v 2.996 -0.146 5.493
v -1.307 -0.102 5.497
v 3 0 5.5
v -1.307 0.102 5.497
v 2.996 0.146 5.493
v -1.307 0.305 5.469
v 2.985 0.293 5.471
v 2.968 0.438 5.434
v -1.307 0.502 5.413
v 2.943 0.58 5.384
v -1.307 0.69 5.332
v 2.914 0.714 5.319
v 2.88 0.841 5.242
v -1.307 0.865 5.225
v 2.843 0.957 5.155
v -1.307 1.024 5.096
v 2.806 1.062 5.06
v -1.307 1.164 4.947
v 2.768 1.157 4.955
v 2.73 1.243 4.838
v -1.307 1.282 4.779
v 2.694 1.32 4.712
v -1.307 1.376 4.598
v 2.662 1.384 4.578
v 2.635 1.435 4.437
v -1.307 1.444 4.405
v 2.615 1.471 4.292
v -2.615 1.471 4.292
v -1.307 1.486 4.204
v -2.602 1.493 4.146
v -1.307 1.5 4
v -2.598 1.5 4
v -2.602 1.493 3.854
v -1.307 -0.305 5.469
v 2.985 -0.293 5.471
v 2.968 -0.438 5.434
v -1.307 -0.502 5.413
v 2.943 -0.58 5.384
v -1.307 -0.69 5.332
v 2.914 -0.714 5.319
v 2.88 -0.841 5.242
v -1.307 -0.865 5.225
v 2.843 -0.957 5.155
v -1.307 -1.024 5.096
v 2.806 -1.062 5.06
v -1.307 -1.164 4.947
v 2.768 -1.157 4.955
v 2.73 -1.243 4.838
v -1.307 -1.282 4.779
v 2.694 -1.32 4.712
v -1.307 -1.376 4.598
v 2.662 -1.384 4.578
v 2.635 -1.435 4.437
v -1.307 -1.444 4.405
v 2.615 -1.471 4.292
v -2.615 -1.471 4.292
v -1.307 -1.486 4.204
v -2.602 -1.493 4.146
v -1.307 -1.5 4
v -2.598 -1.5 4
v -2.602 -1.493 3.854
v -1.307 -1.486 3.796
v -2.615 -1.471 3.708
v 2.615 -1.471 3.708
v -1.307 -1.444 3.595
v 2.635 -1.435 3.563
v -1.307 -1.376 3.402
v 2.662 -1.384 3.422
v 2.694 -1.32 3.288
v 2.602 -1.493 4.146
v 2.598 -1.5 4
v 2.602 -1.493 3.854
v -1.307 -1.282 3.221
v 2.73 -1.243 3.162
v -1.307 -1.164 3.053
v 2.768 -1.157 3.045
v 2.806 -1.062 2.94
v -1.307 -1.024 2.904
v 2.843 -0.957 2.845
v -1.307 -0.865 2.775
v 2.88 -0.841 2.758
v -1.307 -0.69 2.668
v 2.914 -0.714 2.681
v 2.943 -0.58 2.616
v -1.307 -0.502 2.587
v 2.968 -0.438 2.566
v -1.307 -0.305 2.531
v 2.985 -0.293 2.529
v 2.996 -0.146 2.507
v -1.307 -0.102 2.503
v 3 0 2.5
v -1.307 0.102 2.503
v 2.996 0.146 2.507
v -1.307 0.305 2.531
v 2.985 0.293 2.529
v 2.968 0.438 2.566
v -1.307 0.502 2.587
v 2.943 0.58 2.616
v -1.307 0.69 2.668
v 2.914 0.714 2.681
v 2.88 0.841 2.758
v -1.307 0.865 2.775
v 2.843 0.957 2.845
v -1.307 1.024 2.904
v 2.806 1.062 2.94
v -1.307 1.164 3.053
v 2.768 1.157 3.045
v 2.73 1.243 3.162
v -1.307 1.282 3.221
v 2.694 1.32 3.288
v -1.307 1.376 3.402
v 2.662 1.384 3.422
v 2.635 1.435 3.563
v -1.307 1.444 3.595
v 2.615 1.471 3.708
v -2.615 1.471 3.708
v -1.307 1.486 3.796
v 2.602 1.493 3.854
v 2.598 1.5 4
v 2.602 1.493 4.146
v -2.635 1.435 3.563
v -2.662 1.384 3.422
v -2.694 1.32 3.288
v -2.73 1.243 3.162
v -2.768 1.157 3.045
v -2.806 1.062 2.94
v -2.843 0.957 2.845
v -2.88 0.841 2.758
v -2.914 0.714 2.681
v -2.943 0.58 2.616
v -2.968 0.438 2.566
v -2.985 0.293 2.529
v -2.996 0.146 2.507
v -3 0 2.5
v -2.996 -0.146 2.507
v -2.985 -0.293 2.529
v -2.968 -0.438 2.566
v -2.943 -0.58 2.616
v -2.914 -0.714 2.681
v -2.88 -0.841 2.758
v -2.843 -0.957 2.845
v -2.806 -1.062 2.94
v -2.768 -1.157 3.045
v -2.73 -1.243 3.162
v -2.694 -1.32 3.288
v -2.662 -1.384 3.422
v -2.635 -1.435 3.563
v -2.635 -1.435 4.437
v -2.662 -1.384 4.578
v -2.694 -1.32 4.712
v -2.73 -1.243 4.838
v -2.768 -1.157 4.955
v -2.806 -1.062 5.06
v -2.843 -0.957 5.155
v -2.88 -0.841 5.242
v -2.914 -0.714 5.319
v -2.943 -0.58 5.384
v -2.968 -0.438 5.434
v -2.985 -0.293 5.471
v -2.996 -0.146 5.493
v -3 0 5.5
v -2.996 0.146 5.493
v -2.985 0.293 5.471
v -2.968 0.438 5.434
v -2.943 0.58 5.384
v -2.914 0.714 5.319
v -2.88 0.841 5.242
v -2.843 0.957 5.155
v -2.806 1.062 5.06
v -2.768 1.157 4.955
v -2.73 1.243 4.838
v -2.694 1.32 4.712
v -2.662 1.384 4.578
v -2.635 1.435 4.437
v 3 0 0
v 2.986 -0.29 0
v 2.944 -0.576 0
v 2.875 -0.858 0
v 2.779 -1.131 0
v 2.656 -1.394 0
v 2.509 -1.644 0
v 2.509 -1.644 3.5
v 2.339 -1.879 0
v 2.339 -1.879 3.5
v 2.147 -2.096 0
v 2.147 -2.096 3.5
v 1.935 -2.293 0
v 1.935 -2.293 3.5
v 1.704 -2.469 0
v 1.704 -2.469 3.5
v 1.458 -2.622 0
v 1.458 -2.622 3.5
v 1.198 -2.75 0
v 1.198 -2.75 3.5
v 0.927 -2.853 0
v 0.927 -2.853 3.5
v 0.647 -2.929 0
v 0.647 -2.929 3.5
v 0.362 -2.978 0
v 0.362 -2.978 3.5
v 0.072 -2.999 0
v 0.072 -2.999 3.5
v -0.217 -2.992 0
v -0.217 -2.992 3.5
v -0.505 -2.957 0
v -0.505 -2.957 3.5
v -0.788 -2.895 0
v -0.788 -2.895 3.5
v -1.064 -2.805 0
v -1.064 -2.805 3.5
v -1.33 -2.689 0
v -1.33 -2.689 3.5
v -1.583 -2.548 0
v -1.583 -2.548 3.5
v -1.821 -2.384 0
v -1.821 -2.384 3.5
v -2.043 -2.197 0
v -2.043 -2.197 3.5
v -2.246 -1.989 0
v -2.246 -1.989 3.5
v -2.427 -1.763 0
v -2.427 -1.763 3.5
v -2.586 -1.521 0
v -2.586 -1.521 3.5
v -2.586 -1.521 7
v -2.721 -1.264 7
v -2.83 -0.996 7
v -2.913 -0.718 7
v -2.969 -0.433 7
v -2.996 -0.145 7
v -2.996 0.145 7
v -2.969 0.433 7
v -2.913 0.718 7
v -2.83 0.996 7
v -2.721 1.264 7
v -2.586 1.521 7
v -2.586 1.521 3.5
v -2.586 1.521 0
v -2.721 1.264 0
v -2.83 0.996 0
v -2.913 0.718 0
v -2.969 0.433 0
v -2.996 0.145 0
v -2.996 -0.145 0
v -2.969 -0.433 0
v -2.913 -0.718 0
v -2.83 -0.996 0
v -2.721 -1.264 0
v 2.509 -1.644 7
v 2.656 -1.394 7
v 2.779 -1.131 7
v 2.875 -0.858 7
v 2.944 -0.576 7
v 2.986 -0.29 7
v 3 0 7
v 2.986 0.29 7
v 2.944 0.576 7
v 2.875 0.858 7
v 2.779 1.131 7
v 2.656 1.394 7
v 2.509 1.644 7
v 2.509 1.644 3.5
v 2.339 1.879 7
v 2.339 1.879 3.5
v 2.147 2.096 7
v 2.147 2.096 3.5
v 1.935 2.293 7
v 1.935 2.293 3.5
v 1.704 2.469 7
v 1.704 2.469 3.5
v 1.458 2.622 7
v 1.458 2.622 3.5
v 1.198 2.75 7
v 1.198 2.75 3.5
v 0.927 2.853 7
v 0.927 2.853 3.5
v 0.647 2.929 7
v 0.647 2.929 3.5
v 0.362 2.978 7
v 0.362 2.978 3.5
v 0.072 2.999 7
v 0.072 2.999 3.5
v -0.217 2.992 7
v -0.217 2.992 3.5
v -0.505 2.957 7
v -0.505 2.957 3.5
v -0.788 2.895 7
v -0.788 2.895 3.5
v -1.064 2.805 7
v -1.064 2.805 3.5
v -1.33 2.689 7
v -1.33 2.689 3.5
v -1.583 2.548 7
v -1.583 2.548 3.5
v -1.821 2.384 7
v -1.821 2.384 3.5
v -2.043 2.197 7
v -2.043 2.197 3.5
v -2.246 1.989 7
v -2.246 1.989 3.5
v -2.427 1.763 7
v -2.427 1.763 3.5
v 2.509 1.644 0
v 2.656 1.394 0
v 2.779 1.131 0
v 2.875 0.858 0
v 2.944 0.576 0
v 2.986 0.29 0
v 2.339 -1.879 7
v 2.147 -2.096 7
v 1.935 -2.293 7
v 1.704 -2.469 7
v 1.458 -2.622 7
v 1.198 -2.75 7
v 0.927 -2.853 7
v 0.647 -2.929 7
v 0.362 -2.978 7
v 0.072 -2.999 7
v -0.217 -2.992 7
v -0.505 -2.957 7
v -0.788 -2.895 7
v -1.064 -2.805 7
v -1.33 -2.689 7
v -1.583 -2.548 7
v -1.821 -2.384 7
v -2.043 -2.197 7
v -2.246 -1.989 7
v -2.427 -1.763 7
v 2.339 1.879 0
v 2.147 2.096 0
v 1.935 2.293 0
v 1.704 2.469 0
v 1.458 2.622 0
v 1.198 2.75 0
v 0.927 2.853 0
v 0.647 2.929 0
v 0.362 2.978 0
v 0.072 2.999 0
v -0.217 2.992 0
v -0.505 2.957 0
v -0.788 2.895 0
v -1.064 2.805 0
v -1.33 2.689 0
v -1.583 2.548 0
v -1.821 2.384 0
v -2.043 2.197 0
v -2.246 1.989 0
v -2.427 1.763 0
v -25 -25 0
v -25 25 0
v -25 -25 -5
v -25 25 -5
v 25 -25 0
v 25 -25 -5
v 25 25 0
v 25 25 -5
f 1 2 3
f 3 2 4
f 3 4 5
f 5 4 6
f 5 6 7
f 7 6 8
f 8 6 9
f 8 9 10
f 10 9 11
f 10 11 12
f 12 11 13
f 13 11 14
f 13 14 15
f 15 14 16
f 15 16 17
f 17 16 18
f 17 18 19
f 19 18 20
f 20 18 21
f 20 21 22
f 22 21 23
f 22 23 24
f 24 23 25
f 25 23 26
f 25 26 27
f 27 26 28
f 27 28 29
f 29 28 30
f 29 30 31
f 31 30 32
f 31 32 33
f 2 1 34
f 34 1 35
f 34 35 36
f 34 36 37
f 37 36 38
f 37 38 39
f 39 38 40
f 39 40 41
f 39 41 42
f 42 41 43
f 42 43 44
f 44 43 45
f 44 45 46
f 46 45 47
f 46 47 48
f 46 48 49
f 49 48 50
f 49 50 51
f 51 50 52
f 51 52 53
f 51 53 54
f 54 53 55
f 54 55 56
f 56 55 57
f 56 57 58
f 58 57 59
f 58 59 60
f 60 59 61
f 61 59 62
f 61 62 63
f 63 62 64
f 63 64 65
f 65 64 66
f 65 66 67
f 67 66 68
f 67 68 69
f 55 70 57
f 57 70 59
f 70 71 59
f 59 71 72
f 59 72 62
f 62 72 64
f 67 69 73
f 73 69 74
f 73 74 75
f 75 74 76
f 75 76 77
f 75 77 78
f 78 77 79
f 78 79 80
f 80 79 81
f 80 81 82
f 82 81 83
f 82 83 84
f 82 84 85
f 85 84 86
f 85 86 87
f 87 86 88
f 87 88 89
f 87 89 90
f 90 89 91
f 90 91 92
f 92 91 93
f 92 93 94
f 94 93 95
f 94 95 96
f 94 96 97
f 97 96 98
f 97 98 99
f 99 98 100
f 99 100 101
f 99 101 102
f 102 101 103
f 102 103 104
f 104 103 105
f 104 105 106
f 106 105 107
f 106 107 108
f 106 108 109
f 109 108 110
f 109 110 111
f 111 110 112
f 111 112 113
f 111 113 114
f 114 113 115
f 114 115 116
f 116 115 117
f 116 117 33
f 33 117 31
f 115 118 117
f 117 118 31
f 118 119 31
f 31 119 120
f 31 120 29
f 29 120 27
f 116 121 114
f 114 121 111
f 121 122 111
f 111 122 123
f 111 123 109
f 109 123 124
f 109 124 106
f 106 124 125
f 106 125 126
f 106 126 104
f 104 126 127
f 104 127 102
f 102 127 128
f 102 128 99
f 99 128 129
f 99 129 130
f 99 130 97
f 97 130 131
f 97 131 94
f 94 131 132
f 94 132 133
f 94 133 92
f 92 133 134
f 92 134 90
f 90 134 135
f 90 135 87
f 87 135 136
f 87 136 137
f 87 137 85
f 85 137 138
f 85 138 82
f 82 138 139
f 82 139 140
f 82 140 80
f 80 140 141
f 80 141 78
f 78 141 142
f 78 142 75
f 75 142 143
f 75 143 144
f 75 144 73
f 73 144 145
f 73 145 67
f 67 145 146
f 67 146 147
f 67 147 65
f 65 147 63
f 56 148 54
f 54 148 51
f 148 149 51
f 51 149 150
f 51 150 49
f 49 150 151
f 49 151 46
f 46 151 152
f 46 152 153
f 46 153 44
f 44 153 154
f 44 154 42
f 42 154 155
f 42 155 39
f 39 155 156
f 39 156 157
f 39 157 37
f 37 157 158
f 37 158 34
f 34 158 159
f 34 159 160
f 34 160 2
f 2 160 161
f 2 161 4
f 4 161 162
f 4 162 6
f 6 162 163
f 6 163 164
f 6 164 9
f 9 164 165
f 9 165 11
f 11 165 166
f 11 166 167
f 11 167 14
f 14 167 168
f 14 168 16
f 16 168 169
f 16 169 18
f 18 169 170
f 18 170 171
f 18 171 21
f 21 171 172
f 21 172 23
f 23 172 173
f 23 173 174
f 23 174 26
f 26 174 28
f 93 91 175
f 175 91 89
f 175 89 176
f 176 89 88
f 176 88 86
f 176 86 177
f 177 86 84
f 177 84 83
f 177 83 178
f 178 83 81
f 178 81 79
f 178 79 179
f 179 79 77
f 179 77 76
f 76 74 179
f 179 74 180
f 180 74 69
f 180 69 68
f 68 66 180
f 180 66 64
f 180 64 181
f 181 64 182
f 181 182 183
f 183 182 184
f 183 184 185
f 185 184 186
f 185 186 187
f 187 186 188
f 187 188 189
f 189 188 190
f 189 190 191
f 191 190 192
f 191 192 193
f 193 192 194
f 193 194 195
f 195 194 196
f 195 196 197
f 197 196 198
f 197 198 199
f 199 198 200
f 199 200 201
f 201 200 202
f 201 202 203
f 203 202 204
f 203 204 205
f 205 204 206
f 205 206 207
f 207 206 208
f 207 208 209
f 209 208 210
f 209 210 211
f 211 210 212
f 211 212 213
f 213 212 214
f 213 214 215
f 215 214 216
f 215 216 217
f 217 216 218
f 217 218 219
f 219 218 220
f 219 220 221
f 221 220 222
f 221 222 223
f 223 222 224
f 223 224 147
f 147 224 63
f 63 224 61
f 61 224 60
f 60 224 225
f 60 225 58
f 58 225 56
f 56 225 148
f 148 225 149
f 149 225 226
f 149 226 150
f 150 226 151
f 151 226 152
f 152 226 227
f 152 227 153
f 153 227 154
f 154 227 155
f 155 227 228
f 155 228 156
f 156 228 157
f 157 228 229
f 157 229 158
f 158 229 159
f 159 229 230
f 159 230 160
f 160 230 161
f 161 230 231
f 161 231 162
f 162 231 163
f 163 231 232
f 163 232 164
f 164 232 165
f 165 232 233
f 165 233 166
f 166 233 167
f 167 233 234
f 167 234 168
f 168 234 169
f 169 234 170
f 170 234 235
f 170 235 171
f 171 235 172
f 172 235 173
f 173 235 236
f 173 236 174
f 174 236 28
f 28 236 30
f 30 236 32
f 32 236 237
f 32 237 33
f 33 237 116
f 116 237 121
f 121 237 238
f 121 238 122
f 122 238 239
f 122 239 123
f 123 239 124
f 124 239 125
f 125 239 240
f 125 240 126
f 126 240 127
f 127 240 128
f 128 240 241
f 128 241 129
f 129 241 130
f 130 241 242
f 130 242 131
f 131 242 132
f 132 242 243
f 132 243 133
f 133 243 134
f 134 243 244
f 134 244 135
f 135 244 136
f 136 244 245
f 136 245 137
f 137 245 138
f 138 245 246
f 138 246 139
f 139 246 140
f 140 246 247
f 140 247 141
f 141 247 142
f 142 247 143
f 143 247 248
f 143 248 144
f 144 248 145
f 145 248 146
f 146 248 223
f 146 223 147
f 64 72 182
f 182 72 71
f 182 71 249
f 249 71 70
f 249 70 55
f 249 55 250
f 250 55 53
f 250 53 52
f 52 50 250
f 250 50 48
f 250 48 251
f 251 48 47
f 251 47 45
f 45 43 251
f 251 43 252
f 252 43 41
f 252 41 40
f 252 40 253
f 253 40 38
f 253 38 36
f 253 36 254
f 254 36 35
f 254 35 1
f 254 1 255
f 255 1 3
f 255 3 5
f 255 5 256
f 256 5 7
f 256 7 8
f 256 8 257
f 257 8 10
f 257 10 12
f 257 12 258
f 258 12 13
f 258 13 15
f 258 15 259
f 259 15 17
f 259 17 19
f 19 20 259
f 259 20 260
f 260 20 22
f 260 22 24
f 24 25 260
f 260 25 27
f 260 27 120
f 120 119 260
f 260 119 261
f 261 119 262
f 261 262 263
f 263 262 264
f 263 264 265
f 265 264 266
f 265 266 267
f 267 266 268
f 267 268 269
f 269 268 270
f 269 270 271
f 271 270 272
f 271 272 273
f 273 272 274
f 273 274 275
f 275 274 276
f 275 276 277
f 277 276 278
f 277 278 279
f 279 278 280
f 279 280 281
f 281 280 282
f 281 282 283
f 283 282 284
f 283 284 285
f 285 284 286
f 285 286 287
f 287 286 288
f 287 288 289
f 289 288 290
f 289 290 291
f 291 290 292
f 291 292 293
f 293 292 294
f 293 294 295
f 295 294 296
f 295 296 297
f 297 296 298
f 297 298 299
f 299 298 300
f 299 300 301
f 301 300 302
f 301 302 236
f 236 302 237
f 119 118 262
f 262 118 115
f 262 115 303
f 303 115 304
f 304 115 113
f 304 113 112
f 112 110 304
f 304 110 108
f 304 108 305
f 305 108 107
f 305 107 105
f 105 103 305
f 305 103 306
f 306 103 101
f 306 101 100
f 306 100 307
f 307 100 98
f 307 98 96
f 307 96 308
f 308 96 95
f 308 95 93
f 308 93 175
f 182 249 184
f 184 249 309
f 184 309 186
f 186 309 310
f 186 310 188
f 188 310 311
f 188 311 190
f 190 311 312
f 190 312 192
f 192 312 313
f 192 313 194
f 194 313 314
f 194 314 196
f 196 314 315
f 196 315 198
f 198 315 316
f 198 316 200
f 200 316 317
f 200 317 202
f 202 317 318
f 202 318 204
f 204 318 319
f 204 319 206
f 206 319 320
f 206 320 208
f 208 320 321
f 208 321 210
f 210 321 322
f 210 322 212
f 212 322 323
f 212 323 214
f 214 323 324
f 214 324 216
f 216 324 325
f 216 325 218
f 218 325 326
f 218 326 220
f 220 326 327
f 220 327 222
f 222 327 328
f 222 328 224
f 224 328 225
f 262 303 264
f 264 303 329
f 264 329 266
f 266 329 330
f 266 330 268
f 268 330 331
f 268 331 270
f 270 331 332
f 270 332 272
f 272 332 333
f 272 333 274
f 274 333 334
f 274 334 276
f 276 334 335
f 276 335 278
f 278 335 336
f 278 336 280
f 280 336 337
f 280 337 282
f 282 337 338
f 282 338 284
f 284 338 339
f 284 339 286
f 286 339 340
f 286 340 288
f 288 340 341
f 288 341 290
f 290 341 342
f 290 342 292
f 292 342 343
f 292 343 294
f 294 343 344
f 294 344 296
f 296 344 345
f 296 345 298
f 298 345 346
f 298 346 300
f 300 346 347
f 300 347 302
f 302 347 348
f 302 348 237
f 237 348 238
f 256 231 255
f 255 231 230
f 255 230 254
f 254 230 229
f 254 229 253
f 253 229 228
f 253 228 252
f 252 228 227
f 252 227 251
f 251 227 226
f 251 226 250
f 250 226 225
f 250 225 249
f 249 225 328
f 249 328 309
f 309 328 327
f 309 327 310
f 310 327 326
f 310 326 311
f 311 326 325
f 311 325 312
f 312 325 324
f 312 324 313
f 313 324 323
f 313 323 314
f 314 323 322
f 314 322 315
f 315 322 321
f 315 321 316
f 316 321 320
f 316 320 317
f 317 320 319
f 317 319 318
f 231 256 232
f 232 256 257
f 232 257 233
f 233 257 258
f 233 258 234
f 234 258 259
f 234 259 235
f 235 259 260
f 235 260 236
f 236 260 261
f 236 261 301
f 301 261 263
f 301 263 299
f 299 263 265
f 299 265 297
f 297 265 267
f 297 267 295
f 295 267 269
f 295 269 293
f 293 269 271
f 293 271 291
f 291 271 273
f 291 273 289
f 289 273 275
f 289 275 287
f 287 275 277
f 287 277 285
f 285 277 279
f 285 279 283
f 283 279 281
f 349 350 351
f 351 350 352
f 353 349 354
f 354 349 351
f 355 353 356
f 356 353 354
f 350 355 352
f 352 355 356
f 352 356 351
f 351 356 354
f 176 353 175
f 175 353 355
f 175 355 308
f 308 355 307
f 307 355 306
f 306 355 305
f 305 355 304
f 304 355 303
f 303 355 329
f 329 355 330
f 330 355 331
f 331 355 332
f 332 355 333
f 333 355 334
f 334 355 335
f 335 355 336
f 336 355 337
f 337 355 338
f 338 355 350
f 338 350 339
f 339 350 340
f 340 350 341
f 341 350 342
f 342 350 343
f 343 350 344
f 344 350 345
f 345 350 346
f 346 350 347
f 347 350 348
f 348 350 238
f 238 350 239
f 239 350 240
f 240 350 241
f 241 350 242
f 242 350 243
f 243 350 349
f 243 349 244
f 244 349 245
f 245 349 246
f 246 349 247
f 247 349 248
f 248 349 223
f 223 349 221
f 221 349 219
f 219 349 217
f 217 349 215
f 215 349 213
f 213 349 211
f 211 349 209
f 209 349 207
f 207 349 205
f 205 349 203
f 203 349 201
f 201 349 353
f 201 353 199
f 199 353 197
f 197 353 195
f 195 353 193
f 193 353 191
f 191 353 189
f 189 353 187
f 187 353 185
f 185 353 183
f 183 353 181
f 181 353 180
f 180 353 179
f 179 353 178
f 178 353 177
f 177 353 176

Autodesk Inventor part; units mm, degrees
ref_plane "XZ Plane" through (0, 0, 0) normal (0, 1, 0) x (-1, 0, 0)
ref_plane "XY Plane" through (0, 0, 0) normal (0, 0, 1) x (1, 0, 0)
sketch "Sketch1" plane through (0, 0, 0) normal (0, 0, 1) x (1, 0, 0)
  line L0 (-25, 25) -> (25, 25)
  line L1 (25, 25) -> (25, -25)
  line L2 (25, -25) -> (-25, -25)
  line L3 (-25, -25) -> (-25, 25)
  point P0 (0, 0)
  point P1 (0, 25)
  dimension "d0" = 50
  dimension "d1" = 50
  dimension "d2" = 25
  dimension "d3" = 25
extrude "Extrusion1" add sketch "Sketch1" against normal blind 5
sketch "Sketch2" plane through (0, 0, 0) normal (0, 0, 1) x (1, 0, 0)
  circle A0 centre (0, 0) radius 3
  dimension "d6" = 6
extrude "Extrusion2" add sketch "Sketch2" along normal blind 7
ref_plane "Work Plane1" through (3, 0, 0) normal (1, 0, 0) x (0, 1, 0)
sketch "Sketch3" plane through (3, 0, 0) normal (1, 0, 0) x (0, 1, 0)
  point P0 (0, 0)
  point P1 (0, 4)
  dimension "d9" = 4
hole "Hole1" at (3, 0, 4) direction (-1, 0, 0) diameter 3 end through all
properties part number "Sampleholder1Thick"
